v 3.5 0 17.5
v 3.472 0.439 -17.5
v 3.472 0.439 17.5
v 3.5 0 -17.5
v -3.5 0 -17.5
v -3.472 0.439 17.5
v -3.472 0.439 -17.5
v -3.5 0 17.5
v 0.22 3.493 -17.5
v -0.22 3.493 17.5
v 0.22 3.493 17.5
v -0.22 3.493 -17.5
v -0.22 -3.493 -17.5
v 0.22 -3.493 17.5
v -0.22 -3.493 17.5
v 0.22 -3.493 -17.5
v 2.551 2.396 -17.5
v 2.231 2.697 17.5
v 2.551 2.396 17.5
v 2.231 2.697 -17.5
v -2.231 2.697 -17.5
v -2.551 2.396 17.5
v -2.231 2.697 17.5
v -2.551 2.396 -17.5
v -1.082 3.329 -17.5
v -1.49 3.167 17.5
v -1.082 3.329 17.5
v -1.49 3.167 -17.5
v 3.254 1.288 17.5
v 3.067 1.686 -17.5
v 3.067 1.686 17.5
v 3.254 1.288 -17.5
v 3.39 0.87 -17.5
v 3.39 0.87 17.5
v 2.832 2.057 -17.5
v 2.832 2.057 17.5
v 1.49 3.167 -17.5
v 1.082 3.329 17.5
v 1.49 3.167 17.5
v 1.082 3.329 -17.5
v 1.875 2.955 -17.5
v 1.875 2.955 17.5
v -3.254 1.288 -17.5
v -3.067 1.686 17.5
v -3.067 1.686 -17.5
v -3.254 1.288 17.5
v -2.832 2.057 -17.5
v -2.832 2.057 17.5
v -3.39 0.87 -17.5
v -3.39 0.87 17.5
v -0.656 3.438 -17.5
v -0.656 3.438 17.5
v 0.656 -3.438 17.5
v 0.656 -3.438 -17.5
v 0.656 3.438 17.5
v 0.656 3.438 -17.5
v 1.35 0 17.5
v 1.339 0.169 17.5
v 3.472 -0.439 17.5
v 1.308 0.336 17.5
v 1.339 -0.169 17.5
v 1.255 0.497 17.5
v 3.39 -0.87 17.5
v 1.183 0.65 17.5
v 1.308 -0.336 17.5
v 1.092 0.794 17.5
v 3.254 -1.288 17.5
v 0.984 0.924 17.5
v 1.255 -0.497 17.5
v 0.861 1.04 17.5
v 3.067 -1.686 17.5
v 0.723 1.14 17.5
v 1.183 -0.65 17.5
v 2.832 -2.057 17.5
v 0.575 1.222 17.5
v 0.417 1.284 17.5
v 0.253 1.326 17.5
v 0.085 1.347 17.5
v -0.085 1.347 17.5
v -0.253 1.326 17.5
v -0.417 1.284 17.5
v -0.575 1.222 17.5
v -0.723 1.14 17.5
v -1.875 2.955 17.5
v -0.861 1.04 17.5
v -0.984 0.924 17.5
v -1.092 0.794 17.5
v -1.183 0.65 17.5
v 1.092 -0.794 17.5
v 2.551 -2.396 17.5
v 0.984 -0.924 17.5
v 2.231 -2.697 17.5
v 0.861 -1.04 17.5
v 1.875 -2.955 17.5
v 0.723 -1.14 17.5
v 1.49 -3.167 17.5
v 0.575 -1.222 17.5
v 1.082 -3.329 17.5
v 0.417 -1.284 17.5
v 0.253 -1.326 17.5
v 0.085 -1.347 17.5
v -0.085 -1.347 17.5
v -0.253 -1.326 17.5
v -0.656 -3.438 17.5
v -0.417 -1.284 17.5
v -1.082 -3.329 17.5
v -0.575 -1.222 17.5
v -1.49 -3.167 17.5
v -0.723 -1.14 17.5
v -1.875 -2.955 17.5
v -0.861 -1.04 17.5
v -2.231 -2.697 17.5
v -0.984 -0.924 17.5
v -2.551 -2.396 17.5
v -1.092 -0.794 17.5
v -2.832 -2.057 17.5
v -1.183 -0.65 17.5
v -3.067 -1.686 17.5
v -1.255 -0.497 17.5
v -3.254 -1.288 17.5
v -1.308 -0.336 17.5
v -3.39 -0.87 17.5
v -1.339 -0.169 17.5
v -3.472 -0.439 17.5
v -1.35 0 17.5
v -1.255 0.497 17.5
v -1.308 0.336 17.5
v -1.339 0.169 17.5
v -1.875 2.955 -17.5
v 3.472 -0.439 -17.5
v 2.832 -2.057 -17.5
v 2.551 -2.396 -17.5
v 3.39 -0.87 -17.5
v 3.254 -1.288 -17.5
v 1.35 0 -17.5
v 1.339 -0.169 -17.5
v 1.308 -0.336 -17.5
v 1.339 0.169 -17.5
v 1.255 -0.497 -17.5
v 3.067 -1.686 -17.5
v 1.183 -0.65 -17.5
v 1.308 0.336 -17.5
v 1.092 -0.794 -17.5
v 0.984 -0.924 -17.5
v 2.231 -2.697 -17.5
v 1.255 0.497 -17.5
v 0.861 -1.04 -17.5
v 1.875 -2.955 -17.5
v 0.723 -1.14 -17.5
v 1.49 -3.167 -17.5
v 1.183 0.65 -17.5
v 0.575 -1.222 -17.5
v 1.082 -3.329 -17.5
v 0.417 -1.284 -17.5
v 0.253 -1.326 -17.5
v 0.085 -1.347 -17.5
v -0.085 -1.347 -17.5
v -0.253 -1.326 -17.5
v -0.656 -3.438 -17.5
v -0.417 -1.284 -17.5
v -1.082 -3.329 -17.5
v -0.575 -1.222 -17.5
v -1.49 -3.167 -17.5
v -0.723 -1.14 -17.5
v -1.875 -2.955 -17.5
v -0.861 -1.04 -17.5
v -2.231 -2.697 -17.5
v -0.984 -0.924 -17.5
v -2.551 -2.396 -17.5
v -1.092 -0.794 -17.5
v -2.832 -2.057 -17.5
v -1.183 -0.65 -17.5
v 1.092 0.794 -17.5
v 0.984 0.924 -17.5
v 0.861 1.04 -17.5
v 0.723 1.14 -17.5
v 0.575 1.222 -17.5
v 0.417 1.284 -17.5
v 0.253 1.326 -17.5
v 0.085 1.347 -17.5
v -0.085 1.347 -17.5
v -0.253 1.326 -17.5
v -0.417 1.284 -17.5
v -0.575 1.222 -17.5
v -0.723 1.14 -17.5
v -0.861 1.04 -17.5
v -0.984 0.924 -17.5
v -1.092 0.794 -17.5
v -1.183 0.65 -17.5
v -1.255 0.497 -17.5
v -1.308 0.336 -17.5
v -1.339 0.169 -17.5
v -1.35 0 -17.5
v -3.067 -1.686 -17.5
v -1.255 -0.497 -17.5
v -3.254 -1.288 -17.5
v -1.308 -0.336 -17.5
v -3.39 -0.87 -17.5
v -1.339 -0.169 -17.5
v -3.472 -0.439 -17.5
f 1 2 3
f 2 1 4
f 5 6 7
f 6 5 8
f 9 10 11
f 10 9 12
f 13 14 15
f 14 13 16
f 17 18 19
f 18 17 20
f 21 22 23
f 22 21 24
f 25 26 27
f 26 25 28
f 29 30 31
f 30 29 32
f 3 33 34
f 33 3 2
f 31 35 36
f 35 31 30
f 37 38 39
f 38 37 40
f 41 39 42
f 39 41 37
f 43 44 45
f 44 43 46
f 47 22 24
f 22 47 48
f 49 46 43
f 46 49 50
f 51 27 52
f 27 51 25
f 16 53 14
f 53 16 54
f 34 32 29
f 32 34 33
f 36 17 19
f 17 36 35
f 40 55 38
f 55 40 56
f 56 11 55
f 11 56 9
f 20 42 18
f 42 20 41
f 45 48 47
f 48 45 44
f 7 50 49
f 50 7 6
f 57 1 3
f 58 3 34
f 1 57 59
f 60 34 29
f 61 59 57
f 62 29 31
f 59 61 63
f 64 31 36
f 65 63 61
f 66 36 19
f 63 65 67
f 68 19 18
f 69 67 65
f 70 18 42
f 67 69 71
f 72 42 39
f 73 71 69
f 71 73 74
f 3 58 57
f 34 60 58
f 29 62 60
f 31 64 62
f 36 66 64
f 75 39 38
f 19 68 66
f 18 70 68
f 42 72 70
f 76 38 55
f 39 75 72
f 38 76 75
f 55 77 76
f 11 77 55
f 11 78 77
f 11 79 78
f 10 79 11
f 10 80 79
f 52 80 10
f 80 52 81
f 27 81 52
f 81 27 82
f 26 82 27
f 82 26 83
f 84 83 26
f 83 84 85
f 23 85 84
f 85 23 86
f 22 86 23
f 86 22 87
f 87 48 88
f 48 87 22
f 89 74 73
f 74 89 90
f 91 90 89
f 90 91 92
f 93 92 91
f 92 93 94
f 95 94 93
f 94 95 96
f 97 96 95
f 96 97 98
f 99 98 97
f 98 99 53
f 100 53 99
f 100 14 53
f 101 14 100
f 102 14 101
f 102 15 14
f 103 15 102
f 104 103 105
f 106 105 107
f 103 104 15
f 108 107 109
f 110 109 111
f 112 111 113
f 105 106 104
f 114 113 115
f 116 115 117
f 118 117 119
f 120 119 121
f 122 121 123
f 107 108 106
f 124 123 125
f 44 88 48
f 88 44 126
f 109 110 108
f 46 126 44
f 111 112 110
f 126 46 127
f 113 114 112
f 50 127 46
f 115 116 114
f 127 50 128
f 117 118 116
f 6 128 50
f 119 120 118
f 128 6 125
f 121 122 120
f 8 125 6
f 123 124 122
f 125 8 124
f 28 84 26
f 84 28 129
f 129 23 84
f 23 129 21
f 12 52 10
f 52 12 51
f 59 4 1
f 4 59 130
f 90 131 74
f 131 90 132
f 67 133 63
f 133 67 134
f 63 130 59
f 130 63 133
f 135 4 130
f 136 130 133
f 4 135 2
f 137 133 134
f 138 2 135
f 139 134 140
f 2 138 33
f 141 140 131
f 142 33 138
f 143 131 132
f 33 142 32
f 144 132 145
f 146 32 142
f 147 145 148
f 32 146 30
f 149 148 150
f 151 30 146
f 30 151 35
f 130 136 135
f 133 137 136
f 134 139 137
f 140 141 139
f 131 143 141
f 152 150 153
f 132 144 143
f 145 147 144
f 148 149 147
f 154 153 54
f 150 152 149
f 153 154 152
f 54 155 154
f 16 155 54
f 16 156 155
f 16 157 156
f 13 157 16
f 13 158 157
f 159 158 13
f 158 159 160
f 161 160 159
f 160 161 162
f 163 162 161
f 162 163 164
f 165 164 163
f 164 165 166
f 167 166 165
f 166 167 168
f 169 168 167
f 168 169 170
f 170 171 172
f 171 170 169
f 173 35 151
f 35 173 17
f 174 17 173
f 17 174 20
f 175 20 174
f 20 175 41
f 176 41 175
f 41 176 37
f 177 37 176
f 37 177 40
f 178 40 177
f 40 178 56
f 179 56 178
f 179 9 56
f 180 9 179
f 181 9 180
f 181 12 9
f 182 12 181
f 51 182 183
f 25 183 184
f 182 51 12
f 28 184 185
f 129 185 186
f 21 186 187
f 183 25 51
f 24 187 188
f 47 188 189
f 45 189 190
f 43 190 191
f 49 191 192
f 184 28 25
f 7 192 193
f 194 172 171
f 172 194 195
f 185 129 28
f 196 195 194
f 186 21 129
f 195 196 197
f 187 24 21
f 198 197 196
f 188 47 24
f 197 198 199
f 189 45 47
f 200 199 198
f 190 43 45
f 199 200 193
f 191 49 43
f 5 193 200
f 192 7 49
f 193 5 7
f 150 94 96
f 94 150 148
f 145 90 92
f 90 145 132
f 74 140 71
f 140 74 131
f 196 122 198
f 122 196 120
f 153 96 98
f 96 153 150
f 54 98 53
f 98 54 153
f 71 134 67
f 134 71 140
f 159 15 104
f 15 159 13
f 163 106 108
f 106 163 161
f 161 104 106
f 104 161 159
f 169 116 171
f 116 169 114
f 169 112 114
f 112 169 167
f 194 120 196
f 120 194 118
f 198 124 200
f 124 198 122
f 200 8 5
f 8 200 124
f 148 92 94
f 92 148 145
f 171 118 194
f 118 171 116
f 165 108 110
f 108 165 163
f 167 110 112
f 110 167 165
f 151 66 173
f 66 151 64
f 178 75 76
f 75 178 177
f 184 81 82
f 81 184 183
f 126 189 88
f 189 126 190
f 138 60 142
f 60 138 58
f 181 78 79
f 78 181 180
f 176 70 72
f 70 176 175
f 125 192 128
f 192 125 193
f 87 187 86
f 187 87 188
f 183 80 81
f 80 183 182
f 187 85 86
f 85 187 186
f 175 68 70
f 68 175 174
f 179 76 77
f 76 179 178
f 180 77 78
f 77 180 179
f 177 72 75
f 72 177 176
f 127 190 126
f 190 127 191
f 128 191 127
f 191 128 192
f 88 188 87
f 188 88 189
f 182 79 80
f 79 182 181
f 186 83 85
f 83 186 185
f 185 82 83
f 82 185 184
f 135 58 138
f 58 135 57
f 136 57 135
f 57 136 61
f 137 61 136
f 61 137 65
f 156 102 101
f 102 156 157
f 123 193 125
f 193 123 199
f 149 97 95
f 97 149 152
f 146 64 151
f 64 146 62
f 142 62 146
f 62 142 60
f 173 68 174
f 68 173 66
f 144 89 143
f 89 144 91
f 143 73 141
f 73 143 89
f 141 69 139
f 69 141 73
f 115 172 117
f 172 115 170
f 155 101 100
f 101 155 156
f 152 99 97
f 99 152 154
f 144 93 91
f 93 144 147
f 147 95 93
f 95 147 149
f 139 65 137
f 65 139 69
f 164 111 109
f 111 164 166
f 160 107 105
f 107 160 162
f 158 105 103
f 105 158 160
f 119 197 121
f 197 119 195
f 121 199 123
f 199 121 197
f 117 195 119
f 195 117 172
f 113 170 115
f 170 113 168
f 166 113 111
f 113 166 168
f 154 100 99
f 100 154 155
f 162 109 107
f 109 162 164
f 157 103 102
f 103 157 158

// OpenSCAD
$fn = 50;


difference() {
	union() {
		translate(v = [0, 0, -17.5000000000]) {
			cylinder(h = 35, r = 3.5000000000);
		}
	}
	union() {
		translate(v = [0, 0, -100.0000000000]) {
			cylinder(h = 200, r = 1.3500000000);
		}
	}
}
